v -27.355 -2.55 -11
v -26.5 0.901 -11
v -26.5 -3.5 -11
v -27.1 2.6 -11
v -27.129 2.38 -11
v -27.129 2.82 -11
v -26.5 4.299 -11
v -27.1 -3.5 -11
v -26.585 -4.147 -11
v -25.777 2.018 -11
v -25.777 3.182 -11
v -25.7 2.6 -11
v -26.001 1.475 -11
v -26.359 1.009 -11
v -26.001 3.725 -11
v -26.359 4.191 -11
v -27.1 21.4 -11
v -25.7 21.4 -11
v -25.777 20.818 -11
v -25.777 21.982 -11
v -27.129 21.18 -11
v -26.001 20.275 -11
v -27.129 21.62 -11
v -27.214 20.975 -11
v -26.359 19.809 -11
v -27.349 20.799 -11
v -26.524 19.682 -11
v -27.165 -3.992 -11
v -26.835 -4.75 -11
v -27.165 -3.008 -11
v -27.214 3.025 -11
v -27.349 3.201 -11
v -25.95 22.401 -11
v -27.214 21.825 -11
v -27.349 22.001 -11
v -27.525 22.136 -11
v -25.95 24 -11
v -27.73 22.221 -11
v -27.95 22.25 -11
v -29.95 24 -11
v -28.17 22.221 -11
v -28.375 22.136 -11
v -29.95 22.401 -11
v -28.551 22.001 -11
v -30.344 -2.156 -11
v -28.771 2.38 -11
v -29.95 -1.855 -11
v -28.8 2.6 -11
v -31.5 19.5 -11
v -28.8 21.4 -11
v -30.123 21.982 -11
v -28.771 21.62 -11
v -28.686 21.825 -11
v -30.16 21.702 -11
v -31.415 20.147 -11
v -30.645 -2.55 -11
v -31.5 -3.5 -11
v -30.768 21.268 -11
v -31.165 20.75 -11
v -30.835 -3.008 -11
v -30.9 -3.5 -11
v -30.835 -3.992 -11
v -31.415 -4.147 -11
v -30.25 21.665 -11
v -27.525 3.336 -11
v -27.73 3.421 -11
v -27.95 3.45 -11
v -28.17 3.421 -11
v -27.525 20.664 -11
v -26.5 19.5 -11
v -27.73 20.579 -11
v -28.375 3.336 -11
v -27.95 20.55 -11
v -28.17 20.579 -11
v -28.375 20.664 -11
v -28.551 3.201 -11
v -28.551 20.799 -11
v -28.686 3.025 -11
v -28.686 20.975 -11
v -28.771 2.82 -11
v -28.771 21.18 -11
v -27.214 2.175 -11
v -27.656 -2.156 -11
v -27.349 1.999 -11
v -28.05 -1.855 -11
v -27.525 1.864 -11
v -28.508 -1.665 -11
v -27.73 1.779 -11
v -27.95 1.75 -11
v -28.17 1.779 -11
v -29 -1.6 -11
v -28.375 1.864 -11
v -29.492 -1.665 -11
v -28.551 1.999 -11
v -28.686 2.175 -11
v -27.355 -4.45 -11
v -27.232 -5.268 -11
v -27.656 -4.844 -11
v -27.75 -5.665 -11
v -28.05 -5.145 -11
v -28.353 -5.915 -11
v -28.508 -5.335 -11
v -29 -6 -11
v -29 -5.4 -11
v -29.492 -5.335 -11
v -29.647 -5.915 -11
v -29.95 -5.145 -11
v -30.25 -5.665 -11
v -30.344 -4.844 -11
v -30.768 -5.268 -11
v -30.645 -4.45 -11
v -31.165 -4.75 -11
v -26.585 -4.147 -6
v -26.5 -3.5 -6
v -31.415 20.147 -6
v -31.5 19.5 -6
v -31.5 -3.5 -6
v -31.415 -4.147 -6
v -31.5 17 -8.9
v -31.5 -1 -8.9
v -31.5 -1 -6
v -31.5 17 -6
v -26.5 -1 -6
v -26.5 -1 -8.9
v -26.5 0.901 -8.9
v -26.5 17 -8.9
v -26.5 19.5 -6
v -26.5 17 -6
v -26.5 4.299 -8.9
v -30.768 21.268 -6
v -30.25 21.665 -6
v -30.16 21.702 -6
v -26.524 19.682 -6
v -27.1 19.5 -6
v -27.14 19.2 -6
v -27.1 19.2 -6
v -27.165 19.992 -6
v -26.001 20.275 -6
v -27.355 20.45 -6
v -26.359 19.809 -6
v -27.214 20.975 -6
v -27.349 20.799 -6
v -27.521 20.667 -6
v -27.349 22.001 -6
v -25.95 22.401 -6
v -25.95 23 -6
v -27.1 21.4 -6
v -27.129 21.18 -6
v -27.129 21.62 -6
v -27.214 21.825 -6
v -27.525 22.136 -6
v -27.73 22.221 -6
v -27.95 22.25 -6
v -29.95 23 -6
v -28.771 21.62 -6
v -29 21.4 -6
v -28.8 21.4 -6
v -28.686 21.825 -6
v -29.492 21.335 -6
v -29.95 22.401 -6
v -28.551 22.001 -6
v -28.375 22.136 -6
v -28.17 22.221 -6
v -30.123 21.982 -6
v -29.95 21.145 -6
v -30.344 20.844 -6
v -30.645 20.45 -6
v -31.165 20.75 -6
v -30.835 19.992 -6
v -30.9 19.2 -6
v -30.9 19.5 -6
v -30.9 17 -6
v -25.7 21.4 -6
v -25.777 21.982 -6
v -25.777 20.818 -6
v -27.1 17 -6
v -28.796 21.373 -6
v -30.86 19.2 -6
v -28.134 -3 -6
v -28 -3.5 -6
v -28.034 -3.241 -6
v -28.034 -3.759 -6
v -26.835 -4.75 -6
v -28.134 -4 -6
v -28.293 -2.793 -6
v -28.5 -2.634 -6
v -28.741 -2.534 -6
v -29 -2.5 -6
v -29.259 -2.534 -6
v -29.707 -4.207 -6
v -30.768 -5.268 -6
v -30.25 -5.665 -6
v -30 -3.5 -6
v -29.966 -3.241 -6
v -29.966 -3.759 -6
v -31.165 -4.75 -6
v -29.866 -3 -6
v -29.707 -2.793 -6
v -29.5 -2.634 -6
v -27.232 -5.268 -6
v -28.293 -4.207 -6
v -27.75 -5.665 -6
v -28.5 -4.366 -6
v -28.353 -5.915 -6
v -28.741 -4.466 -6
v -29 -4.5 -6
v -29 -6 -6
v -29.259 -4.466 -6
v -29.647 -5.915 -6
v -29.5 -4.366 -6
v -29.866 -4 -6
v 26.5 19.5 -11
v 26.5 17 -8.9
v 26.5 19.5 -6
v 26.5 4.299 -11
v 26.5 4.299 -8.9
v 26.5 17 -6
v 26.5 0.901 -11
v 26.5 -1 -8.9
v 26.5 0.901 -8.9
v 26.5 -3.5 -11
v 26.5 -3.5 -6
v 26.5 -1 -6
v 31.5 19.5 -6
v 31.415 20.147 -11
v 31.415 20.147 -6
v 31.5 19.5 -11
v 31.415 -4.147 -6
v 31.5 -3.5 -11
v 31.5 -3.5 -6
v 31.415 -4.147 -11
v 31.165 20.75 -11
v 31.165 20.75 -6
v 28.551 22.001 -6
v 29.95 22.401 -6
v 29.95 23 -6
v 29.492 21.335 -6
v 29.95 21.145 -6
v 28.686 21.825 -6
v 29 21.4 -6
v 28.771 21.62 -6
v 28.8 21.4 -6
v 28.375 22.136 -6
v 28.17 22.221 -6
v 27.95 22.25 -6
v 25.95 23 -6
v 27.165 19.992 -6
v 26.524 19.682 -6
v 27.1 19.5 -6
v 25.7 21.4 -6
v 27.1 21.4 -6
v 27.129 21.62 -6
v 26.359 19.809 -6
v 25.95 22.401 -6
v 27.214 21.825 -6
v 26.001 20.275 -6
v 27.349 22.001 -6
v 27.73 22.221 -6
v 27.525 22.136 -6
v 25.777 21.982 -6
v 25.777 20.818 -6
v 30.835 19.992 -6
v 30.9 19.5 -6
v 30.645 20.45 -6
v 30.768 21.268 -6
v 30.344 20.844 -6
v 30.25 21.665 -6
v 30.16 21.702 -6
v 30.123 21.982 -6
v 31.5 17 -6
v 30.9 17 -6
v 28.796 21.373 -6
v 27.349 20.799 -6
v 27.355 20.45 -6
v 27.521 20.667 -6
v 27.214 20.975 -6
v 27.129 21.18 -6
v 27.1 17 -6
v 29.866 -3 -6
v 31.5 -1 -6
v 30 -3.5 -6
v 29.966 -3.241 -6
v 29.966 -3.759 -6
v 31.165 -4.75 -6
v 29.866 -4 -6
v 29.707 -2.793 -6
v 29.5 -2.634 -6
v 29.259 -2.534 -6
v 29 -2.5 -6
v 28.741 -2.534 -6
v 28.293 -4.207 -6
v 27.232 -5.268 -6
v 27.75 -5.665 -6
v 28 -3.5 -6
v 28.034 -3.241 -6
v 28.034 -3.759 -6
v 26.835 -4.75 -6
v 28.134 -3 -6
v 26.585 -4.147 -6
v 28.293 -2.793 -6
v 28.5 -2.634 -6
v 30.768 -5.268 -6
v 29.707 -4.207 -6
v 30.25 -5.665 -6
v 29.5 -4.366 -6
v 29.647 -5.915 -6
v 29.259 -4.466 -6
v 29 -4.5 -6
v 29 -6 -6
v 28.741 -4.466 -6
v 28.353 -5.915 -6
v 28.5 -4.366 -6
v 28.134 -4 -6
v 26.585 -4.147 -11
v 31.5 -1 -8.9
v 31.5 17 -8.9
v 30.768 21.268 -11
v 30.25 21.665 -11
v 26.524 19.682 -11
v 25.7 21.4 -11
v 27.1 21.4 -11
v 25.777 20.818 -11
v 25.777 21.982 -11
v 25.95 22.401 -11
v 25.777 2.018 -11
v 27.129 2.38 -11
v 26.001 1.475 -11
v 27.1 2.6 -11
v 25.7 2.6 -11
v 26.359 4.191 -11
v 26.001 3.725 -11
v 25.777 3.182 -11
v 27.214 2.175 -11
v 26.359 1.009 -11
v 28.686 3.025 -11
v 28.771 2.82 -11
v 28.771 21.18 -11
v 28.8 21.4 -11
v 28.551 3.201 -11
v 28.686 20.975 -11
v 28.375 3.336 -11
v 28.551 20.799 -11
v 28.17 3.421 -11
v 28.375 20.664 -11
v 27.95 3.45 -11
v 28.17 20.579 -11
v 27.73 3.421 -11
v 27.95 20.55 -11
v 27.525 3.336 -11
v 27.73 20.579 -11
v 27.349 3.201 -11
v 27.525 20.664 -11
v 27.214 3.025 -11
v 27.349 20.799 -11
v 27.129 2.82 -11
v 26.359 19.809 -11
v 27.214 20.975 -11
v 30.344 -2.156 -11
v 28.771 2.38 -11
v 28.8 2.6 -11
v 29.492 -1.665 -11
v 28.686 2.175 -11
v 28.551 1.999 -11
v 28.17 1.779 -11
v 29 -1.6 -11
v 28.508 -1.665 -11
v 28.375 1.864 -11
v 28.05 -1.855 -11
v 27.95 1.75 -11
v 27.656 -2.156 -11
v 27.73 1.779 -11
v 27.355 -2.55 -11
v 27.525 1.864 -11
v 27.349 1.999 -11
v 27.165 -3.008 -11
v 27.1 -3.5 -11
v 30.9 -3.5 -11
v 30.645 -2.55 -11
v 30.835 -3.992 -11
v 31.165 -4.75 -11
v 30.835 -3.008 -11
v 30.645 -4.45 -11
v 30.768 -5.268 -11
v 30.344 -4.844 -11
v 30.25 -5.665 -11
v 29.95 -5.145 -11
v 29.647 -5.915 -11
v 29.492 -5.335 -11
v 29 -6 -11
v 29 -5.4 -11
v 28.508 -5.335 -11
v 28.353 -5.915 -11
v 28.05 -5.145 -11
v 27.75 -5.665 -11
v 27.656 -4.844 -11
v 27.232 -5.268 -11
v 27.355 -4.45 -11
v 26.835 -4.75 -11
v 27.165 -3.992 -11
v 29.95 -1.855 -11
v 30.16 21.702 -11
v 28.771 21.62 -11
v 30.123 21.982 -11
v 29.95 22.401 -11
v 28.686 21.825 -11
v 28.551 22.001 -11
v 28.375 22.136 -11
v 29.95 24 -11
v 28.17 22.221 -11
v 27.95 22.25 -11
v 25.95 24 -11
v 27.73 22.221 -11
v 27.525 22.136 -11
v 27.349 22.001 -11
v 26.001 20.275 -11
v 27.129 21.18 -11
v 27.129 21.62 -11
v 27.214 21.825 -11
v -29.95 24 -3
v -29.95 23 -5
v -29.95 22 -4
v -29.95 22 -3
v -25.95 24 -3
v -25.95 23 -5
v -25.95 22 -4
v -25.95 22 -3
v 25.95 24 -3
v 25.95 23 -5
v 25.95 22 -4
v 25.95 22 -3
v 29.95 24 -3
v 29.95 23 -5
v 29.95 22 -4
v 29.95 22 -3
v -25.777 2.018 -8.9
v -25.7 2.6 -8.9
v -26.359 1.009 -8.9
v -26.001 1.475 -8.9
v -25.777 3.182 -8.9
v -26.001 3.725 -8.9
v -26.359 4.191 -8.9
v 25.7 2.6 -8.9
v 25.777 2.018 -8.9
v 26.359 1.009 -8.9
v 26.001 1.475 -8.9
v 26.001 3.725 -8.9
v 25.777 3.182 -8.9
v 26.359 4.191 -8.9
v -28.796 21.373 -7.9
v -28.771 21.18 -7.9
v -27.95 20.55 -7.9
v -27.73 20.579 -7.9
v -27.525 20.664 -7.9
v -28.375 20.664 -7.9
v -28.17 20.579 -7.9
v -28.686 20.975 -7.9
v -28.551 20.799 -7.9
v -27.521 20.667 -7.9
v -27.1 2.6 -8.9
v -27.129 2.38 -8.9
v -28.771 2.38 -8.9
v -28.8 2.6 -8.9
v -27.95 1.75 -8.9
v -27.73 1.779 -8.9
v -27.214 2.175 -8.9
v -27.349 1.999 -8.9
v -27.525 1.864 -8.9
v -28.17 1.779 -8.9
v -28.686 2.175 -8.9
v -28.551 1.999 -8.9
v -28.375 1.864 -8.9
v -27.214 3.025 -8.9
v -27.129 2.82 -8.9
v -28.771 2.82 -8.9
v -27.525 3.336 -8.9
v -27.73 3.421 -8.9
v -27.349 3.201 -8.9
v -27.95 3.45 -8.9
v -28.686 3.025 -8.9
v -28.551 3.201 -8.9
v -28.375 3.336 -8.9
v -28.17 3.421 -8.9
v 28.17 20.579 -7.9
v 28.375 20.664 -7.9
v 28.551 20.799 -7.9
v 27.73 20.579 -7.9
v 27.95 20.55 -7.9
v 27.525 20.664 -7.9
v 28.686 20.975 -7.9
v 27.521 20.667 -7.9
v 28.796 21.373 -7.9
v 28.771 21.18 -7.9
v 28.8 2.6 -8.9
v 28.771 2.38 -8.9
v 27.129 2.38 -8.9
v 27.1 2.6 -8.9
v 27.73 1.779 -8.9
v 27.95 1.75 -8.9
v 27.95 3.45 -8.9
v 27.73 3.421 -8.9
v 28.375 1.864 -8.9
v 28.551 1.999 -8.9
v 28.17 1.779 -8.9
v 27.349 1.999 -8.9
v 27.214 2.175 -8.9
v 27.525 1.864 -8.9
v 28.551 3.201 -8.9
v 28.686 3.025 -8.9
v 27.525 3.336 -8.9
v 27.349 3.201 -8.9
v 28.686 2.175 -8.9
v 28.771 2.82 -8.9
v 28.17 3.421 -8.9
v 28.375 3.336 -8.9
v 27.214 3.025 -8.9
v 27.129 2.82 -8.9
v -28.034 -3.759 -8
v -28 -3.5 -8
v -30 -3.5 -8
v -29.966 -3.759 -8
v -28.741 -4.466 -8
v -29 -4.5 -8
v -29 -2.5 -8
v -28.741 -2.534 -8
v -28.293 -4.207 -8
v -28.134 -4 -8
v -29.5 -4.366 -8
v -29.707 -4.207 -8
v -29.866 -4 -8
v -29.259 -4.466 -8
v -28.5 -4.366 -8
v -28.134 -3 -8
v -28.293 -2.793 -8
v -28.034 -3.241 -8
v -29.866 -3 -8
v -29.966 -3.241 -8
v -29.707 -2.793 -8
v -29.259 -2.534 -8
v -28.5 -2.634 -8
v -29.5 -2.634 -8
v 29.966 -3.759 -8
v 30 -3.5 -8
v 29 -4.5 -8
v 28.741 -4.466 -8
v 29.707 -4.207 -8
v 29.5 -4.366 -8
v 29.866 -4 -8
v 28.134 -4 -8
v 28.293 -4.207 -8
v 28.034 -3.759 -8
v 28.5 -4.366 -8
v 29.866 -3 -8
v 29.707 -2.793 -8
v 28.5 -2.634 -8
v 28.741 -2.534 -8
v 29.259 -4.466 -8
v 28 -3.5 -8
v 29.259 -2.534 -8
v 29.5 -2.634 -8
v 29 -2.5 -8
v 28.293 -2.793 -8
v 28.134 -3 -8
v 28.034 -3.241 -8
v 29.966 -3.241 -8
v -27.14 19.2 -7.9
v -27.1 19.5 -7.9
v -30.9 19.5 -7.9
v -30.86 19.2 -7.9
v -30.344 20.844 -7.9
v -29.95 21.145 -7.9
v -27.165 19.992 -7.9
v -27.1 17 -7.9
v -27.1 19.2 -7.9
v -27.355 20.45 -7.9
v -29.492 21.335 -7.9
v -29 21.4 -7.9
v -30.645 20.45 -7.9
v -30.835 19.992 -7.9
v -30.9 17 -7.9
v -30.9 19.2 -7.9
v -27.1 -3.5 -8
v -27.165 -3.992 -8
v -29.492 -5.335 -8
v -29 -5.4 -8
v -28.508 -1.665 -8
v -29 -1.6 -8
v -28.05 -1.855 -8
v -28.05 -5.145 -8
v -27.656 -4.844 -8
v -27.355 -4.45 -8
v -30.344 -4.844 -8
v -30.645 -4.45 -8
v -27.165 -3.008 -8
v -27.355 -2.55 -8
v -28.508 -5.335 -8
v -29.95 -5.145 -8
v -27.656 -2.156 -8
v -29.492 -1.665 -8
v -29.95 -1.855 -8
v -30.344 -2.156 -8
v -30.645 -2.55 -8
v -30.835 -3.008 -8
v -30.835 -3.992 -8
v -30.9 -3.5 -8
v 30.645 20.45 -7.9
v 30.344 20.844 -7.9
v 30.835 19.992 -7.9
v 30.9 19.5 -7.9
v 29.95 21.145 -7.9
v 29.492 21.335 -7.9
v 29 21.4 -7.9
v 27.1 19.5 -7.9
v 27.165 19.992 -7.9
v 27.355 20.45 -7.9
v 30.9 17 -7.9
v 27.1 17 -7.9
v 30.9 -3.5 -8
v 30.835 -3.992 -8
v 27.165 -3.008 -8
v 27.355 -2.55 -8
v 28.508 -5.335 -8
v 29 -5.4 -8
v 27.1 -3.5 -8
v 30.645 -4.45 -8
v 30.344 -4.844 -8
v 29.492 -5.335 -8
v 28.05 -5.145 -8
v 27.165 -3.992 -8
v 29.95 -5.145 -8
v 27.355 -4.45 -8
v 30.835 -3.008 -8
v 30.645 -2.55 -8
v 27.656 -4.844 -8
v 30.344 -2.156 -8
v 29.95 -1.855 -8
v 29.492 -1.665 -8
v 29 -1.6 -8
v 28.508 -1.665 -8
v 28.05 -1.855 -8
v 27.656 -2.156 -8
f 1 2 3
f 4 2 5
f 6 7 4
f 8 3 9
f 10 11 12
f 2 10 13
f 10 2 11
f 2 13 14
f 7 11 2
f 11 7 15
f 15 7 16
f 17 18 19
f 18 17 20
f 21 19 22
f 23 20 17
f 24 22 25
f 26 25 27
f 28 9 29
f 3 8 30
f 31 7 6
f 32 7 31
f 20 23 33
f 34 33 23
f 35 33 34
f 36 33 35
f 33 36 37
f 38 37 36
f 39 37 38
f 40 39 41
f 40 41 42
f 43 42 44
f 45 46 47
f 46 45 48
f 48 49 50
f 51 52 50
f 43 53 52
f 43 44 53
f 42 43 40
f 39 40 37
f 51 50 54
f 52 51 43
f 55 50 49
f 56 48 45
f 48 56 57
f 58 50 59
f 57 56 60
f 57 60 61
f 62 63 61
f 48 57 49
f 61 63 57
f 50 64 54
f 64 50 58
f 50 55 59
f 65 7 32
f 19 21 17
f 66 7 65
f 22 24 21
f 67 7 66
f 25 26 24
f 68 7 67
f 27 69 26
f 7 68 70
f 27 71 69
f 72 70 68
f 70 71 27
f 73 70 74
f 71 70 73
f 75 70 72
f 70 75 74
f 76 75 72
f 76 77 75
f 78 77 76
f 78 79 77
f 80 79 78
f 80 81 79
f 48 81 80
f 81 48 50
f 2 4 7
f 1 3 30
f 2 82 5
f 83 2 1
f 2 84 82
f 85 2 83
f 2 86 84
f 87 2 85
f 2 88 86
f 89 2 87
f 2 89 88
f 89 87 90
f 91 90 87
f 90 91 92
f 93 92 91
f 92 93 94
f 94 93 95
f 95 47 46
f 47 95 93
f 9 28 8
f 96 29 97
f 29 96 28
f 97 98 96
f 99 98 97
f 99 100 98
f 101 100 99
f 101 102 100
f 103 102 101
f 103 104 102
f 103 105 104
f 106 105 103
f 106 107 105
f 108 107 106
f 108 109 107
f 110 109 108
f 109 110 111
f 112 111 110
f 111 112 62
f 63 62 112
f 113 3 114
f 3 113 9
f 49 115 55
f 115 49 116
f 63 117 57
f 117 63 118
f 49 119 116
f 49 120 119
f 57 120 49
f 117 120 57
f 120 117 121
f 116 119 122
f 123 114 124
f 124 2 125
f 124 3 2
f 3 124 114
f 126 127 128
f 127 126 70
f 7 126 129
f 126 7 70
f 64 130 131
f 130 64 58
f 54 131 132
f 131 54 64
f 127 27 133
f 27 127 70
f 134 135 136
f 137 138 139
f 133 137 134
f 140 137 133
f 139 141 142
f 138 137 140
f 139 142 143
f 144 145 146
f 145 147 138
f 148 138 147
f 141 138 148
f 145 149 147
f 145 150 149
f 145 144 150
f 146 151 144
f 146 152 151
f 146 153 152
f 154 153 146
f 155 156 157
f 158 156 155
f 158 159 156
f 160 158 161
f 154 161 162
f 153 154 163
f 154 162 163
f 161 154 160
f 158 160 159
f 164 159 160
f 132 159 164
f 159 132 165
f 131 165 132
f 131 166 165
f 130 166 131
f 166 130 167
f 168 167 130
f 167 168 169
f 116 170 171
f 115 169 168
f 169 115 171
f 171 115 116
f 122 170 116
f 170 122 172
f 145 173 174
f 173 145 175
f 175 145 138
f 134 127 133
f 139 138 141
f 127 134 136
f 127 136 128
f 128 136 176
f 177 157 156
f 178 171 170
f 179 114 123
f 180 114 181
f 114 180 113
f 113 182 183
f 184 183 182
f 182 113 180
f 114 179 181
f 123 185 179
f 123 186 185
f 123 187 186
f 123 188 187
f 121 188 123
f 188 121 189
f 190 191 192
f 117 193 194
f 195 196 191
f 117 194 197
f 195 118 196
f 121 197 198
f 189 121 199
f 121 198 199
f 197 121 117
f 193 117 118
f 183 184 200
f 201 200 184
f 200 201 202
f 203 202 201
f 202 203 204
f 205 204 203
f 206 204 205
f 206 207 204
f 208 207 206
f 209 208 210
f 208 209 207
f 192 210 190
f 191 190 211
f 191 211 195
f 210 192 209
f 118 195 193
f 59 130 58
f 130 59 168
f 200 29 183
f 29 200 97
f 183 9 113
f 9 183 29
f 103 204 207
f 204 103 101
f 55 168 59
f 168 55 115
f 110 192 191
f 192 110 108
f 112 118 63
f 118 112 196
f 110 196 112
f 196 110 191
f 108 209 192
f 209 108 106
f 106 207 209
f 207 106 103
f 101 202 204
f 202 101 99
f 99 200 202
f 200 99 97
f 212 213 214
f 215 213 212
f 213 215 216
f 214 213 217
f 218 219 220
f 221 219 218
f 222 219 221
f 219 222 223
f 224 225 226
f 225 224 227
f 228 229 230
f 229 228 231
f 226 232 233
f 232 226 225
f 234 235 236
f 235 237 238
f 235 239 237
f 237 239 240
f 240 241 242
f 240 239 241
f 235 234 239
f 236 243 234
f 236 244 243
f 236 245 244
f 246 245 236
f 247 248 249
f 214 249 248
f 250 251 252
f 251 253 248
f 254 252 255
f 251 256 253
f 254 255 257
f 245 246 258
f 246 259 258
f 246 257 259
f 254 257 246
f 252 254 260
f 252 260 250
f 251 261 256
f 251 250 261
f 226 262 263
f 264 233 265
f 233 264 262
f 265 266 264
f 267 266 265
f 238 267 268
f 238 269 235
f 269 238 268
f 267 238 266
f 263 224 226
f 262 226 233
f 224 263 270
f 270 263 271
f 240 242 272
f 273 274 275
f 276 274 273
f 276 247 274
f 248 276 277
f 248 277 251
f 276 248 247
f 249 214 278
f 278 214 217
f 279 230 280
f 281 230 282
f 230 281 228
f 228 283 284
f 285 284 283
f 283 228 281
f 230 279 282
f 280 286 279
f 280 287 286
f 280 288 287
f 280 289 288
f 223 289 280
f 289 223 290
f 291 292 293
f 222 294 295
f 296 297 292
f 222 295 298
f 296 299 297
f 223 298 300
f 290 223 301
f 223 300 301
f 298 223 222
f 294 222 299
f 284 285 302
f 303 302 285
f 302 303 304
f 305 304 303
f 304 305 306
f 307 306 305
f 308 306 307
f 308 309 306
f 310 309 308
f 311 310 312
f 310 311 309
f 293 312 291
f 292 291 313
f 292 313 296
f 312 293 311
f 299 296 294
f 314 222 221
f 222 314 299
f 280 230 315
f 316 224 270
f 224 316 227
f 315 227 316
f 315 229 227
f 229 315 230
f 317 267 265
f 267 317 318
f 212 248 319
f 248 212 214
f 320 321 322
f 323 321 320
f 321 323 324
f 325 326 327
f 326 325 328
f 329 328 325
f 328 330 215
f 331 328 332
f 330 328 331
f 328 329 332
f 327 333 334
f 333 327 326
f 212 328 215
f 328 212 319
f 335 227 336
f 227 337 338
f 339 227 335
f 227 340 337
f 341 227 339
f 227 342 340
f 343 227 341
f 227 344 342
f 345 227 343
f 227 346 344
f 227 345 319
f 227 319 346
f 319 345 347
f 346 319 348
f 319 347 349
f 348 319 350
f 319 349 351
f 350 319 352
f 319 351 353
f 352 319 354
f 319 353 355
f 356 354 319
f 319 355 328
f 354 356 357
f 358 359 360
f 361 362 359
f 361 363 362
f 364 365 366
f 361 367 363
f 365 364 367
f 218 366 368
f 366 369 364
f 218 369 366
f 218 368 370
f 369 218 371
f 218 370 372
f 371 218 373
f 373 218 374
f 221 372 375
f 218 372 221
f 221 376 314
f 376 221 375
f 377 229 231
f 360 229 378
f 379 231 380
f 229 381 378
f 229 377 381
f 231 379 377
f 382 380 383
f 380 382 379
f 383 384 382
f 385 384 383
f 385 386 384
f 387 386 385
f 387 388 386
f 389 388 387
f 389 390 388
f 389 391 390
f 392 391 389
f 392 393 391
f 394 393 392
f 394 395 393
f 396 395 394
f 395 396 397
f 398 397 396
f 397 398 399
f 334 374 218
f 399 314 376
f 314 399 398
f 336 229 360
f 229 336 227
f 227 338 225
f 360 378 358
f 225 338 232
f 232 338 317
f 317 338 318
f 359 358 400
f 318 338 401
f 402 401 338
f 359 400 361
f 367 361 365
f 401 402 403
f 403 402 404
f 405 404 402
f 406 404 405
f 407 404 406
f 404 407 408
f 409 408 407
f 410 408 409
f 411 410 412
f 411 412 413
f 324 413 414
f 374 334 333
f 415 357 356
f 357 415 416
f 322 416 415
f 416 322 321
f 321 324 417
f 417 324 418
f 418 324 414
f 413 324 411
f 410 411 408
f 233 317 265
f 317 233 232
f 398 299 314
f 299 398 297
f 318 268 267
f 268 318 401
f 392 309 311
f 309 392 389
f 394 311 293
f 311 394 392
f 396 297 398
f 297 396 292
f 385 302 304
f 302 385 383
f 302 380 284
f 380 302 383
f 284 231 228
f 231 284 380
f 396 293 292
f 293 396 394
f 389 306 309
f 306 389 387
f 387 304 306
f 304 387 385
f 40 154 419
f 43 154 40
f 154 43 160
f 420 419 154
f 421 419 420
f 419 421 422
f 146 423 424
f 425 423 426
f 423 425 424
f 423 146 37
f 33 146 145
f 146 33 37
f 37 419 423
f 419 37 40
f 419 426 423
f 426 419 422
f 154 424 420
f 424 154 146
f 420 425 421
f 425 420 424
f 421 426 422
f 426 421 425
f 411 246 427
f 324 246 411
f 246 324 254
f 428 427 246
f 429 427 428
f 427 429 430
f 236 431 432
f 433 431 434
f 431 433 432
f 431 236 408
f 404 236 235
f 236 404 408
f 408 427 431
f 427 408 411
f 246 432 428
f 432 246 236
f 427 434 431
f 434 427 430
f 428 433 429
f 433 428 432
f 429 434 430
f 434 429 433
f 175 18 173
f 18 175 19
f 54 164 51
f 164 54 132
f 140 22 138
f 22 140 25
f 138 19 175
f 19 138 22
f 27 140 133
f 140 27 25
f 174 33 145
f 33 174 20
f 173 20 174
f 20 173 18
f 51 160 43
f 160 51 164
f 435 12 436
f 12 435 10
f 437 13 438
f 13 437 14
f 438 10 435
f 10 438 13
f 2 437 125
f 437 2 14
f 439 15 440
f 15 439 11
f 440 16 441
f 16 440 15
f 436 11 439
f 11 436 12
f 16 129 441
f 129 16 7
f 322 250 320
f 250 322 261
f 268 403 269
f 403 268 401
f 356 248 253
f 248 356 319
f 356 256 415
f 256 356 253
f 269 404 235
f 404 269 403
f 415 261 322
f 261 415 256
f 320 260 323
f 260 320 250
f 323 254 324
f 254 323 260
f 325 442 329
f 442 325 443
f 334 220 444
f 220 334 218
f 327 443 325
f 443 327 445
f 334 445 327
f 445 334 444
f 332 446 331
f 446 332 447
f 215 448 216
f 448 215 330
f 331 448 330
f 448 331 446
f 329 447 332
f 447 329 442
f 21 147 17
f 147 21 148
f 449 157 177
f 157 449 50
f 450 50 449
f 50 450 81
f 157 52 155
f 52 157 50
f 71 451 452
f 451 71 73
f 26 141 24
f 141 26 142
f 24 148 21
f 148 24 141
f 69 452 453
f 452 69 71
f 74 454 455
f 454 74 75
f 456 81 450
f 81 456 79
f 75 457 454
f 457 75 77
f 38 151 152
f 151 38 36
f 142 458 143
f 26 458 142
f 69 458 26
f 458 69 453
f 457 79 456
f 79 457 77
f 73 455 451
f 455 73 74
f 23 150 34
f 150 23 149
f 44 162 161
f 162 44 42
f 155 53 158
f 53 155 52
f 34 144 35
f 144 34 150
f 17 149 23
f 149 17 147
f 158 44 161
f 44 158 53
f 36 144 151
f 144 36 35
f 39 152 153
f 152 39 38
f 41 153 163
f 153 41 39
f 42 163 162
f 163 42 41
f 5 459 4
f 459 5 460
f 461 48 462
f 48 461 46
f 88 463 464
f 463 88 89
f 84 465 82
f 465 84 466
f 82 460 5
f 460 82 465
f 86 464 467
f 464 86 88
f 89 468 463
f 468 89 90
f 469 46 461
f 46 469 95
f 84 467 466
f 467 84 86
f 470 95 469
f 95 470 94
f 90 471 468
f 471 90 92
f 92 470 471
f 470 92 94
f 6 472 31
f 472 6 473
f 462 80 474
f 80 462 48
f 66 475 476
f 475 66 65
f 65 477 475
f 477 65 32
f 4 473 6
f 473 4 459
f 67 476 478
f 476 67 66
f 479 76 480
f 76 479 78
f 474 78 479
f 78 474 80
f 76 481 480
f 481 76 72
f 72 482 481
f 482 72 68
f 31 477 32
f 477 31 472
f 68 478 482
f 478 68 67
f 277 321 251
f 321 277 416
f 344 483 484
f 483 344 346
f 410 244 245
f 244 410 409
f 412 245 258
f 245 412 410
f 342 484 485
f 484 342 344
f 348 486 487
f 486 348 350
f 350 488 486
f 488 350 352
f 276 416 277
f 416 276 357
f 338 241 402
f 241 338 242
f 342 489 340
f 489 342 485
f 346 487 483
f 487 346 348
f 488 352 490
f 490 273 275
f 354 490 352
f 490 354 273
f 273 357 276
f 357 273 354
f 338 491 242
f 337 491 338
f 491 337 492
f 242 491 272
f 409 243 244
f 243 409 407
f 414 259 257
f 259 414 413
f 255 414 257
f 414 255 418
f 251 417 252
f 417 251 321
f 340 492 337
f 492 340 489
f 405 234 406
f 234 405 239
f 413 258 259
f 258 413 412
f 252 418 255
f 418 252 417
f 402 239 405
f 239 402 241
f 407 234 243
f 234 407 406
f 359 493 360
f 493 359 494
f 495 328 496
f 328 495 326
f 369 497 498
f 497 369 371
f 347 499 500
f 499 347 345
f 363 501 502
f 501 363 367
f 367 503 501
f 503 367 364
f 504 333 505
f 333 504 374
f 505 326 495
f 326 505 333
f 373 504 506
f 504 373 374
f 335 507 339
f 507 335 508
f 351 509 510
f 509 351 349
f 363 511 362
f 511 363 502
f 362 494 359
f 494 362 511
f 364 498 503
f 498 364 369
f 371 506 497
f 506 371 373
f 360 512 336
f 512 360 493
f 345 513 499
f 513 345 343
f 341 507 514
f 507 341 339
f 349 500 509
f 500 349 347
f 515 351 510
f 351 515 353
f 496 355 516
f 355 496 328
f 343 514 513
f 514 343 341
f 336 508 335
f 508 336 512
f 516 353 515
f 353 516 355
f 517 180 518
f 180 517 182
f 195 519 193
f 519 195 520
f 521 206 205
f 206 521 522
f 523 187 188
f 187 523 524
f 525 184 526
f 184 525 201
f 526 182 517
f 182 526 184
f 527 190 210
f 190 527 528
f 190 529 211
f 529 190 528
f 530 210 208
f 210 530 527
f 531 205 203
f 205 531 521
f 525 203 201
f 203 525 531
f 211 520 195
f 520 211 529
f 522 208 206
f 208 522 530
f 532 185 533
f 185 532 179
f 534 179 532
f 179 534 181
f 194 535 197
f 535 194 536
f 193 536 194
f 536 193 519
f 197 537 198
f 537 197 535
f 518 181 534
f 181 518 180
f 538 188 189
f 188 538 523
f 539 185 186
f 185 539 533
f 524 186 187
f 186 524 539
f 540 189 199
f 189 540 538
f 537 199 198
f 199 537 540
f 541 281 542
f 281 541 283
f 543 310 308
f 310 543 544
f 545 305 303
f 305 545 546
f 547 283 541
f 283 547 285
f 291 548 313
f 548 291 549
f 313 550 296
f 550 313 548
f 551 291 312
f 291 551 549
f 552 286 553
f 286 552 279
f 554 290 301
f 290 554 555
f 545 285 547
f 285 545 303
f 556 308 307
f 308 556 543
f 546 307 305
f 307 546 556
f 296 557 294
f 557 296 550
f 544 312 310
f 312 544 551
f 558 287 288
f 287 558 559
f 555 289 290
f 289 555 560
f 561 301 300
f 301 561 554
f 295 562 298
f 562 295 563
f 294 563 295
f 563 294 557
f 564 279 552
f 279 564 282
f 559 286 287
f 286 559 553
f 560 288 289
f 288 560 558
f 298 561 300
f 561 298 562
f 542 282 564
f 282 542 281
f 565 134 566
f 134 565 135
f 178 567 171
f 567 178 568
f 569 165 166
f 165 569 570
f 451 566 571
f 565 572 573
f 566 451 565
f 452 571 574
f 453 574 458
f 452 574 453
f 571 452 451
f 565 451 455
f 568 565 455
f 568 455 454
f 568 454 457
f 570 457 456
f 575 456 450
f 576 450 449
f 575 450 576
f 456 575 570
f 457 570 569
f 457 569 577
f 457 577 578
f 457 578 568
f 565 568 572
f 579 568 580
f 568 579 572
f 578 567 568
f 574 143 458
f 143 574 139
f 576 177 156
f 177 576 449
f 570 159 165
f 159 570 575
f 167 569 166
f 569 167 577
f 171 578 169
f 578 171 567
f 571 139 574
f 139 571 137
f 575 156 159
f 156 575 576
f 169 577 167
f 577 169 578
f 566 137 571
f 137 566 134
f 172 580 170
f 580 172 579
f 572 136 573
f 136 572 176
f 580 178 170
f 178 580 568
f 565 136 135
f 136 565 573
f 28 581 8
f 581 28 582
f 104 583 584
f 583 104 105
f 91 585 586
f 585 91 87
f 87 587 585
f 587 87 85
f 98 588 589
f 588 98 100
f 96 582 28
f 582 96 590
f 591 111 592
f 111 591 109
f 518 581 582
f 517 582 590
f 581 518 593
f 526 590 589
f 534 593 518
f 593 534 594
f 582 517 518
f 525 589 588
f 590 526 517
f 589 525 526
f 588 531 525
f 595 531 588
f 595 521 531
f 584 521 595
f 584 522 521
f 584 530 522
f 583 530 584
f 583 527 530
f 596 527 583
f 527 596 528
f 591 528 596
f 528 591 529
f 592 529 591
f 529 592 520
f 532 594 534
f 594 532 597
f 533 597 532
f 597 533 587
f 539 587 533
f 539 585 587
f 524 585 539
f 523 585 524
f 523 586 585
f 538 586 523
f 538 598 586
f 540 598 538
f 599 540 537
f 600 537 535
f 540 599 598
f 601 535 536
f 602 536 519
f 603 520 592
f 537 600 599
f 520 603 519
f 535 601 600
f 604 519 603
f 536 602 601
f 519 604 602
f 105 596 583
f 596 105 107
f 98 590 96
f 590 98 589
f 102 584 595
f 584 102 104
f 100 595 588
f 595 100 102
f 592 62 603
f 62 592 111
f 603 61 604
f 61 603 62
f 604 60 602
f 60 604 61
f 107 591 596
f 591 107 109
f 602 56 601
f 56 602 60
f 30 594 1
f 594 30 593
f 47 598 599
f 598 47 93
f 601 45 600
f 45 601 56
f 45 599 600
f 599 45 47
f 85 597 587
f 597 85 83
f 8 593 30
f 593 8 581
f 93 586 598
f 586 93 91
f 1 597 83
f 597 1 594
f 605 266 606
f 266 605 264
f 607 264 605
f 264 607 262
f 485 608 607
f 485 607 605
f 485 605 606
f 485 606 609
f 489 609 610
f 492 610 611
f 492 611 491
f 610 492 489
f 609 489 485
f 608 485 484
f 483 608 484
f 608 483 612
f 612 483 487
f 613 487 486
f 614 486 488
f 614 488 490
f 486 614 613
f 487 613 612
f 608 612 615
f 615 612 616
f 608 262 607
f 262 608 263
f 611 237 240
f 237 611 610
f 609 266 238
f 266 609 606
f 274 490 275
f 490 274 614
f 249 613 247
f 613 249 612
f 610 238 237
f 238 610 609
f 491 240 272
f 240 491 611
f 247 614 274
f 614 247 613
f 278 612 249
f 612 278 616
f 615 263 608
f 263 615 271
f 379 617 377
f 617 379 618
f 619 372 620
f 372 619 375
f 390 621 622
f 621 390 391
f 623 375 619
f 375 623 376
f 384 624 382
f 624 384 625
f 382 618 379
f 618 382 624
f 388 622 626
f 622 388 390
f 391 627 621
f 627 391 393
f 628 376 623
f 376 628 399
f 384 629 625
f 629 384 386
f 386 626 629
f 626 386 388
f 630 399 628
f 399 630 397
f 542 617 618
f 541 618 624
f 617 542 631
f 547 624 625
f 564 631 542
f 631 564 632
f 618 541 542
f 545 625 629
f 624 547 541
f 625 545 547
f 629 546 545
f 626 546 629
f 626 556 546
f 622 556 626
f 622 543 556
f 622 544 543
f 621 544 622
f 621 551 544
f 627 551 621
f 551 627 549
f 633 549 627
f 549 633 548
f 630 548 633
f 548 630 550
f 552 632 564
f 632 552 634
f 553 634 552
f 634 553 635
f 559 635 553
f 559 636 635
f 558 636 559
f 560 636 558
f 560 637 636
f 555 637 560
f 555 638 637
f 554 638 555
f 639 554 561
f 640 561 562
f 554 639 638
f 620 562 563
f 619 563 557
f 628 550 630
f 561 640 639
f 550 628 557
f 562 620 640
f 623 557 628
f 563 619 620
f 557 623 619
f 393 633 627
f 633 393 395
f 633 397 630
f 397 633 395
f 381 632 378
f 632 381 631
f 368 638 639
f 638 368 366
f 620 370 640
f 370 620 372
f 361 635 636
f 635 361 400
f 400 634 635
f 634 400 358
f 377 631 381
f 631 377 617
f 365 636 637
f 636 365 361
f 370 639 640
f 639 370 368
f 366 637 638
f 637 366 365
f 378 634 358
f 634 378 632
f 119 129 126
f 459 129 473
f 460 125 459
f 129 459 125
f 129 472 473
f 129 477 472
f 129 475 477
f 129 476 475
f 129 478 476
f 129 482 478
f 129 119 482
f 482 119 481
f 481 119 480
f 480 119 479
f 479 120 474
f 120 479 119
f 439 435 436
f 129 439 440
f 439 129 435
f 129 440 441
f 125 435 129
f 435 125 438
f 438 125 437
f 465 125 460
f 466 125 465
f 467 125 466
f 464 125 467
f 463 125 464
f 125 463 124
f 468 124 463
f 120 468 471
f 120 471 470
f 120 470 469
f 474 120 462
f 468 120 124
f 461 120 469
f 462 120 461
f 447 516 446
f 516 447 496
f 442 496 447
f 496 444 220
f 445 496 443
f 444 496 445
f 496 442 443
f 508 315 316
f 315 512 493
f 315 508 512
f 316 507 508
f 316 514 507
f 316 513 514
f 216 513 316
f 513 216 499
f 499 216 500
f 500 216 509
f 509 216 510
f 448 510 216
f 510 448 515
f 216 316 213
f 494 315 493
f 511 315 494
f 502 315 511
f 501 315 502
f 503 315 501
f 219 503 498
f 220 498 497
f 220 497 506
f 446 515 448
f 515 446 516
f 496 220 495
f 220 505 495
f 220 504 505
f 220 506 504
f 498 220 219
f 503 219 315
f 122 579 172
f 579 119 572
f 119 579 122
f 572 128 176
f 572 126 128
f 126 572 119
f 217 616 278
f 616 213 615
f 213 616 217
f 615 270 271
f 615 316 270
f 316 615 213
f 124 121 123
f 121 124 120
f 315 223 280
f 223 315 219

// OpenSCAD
// file: config.scad
//Parameters for servo_lx16a
$fn = 24;
//x,y,z => l,w,h


servo_l         = 45.20; 
servo_w         = 24.70; 
body_h          = 32;

servo_h         = 35;

hub_offset      = 10.10;

rad = 2;


w_between_holes = 20.5;
l_between_top_holes = 20.7;
l_between_bottom_holes = 24.45;
top_hole_l_offset = 6.1;
bottom_hole_l_offset = 2.35;

hole_dia = 1.6;
attach_screw_l = 5;

top_hub_carve_h = 2.6;
bottom_hub_carve_h = 3.4;

top_attach_carve_h = 1.1;
bottom_attach_carve_h = 1.9;

hub_carve_r = 10.8;

hub_r = 10.1;

w_between_ridges = 19.5;

top_horn_h = 3.20;
bottom_horn_h = 3.85;

top_horn_r = 3.15;
bottom_horn_r = 3;



hub_h           = 4;
small_hub_r     = 6.15/2;  
horn_r          = 4.66/2;
horn_h          = 3;

wire_l          = 4;
wire_w          = 1.5;
wire_h          = 1;
wire_place      = 4.8;
// file: electronics.scad
$fn=100;

//on_off_switch();

//pi_zero();

//translate ([0,100,0])
//pca9685();

//dc_dc();

//pi_camera();



module header(pins, rows){
  color("darkgrey") cube([2.54*pins,2.54*rows,1.27]);
  
  color("gold")
  for(x=[0:pins-1],y=[0:rows-1])
    translate([x*2.54+(1.27+.6)/2,y*2.54+(1.27+.6)/2,-3.5]) cube([0.6,0.6,11.5]);
}


module pi_zero(){
    // PCB
    color("limegreen") difference(){
        hull(){
            translate([-(65-6)/2,-(30-6)/2,0]) cylinder(r=3, h=1.4 );
            translate([-(65-6)/2, (30-6)/2,0]) cylinder(r=3, h=1.4 );
            translate([ (65-6)/2,-(30-6)/2,0]) cylinder(r=3, h=1.4 );
            translate([ (65-6)/2, (30-6)/2,0]) cylinder(r=3, h=1.4 );
        }
        
        translate([-65/2+3.5,-30/2+3.5,-1]) cylinder(d=2.75, h=3);
        translate([-65/2+3.5, 30/2-3.5,-1]) cylinder(d=2.75, h=3);
        translate([65/2-3.5,-30/2+3.5,-1]) cylinder(d=2.75, h=3);
        translate([65/2-3.5, 30/2-3.5,-1]) cylinder(d=2.75, h=3);
    }
    
    // Header
    translate([-10*2.54,30/2-2.54-3.5,1.4])
    header(20,2);
    
    translate([-65/2,-30/2,1.4]){
        color("silver"){
        
            // micro USB
            translate([41-8/2,-1.5,0]) cube([8,6,2.6]);
            translate([54-8/2,-1.5,0]) cube([8,6,2.6]);        
            
            // HDMI
            translate([6.9,-1.5,0]) cube([13,7,3]);
        }
    
        color("darkgrey"){
        
            // Camera
            translate([64-4/2,7.1,0]) cube([4,16,2.5]);
        }
    
        // Micro SD Card
        color("silver") translate([0,8.6,-0]) cube([13,14,1.5]);    
        color("darkgrey") translate([-2.4,10.1,0]) cube([2.4,11,1]);
    }
}



module pca9685(withHeader=true){  
  
    // PCB
    color("limegreen") difference(){
        translate([0,0,0]) hull(){
            translate([-(62.5-6)/2,-(25.4-6)/2,0]) cylinder(r=3, h=1.4 );
            translate([-(62.5-6)/2, (25.4-6)/2,0]) cylinder(r=3, h=1.4 );
            translate([ (62.5-6)/2,-(25.4-6)/2,0]) cylinder(r=3, h=1.4 );
            translate([ (62.5-6)/2, (25.4-6)/2,0]) cylinder(r=3, h=1.4 );
        }
        
        translate([-55.9/2,-18.8/2,-1]) cylinder(d=2.75, h=3);
        translate([-55.9/2, 18.8/2,-1]) cylinder(d=2.75, h=3);
        translate([55.9/2,-18.8/2,-1]) cylinder(d=2.75, h=3);
        translate([55.9/2, 18.8/2,-1]) cylinder(d=2.75, h=3);
    } 
    
    
    // capacitor
    color("silver")
    translate([-(62.5/2)+17.1,(25.4-8.3)/2,1.4])
    cylinder(d=8.3, h=12.7);
    
    //power connector
    color("blue")
    translate([-(62.5/2)+25.1+2.54*2,(25.4-8.3)/2,1.4])
    cube([2.54*2,4,8]);
    
    // Header top
    translate([-(62.5/2)+5.65,-25.4/2,1.4])
    header(4,3);
    
    translate([2.25,-25.4/2,1.4])
    header(4,3);
    
    translate([-2.25-2.54*4,-25.4/2,1.4])
    header(4,3);
    
    translate([62.5/2-5.65-2.54*4,-25.4/2,1.4])
    header(4,3);
    
    translate([62.5/2,-25.4/2+5.08,1.4])
    rotate([0,0,90])
    header(6,1);
    
    translate([-62.5/2+2.54,-25.4/2+5.08,1.4])
    rotate([0,0,90])
    header(6,1);

  
}

module dc_dc(){
    
    // PCB
    color("limegreen") difference(){
        translate([0,0,0]) hull(){
            translate([-(24.5-6)/2,-(48-6)/2,0]) cylinder(r=3, h=1.4 );
            translate([-(24.5-6)/2, (48-6)/2,0]) cylinder(r=3, h=1.4 );
            translate([ (24.5-6)/2,-(48-6)/2,0]) cylinder(r=3, h=1.4 );
            translate([ (24.5-6)/2, (48-6)/2,0]) cylinder(r=3, h=1.4 );
        }
      
        translate([0,0,-1]) {
            
            //translate([-17/2,-35/2,0])
            //cylinder(d=3.15, h=2.5);
            
            translate([-17/2,35/2, 0])
            cylinder(d=3.15, h=2.5);
            
            translate([17/2,-35/2, 0])
            cylinder(d=3.15, h=2.5);
            
            //translate([17/2,35/2, 0])
            //cylinder(d=3.15, h=2.5); 
          
        }


    } 
    
    
    // capacitors
    color("darkblue")
    translate([-(24.5/2)+12.1,(48-8)/2,1.4])
    cylinder(d=8, h=10);
    
    color("darkblue")
    translate([-(24.5/2)+12.1,-(48-8)/2,1.4])
    cylinder(d=8, h=10);
    
    //toroid
    
    difference(){
        
        color("orange")
        translate([(24.5/2)-22.1+9,(48-30)/2,1.4])
        cylinder(d=12, h=7.6);
        
        color("orange")
        translate([(24.5/2)-22.1+9,(48-30)/2,0.5])
        cylinder(d=6, h=11);

        
    }
    
    
    //potentiometer
    color("blue")
    translate([24.5/2-2,-48/2+9,1.4])
    rotate([0,0,90])
    cube([5,10,11]);
    
    
    //IC
    color("black")
    translate([24.5/2-8,-48/2+15,1.4])
    rotate([0,0,90])
    cube([11,11,5]);
    
    
}


module on_off_switch(){
    
    union(){
        
        color("silver")
        translate([-8/2, -4/2, 0])
        cube([8, 4, 3.8]);
        
        color("black")
        translate([-1.5/2, -1.5/2, 3.8])
        cube([1.5, 1.5, 3]);
        
        color("silver")
        translate([-0.5/2, -0.5/2, -3.2])
        cube([0.5, 0.5, 3.2]);
        
        color("silver")
        translate([-0.5/2-2.5, -0.5/2, -3.2])
        cube([0.5, 0.5, 3.2]);
        
        color("silver")
        translate([-0.5/2+2.5, -0.5/2, -3.2])
        cube([0.5, 0.5, 3.2]);
        
        
        
        
    }
    
}


module pi_camera(){
    difference(){
        union(){
            color("limegreen")
            translate([-25.5/2, -24.5/2, 0])
            cube([25.5, 24.5, 0.9]);
            
            
            //camera sensor
            color("darkgrey")
            translate([-8.5/2, -8.5/2+2.4, 0.9])
            cube([8.5, 8.5, 3.5]);
            
            color("darkgrey")
            translate([0, 2.4, 0.9+3.5])
            cylinder(d=8, h=0.75, $fn=32);
        
            color("darkgrey")
            translate([0, 2.4, 0.9+3.5+0.75])
            cylinder(d=6, h=0.75, $fn=32);
            
            color("darkgrey")
            translate([0, 2.4, 0.9+3.5+0.75+0.75])
            cylinder(d1=2, d2=5, h=2, $fn=32);
            
            //sensor connector
            color("orange")
            translate([-8.5/2, -8.5/2+2.4-10.5, 0.9])
            cube([8.5, 10.5, 2.5]);
            
            //led
            color("white")
            translate([-20/2, -8.5/2+2.4-7, 0.9])
            cube([20, 3, 1]);            
            
            
            //connector
            color("white")
            translate([-20.8/2, -5.5+24/2, -2.4])
            cube([20.8, 5.5, 2.4]);
            
            
    
        }
          
        translate([-21/2,-20/2,-1]) cylinder(d=2.1, h=3);
        translate([-21/2, 20/2-7.5,-1]) cylinder(d=2.1, h=3);
        translate([21/2,-20/2,-1]) cylinder(d=2.1, h=3);
        translate([21/2, 20/2-7.5,-1]) cylinder(d=2.1, h=3);
    }
    
    
}
// file: servo_5g.scad
include <Config.scad>

servo_5g();


$fn = 24;
//x,y,z => l,w,h


module servo_5g() {
  
    translate([-servo5_l/2, -servo5_w/2, -body5_h/2-hub5_h/2-horn5_h/2]) {
    
        color("white") 
        translate([servo5_l/2,servo5_l/2,body5_h+hub5_h])
        cylinder(r=horn5_r,h=horn5_h);
        
        color("deepSkyBlue",.7) //deepSkyBlue
        union() {
            cube([servo5_l,servo5_w,body5_h]);
            translate([servo5_l/2,servo5_l/2,body5_h])
            cylinder(r=servo5_l/2,h=hub5_h);
            translate([servo5_l/2,servo5_l/2+3.7,body5_h])
            cylinder(r=small_hub5_r,h=hub5_h);
            
        }
    }
}
// file: servo_12g.scad
include <config.scad>


servo_12g();


$fn = 24;
//x,y,z => l,w,h


module servo_12g() {
  
    translate([-servo_l/2, -servo_w/2, -body_h/2-hub_h/2-horn_h/2]) {
    
        color("white") 
        translate([servo_l/2,servo_l/2,body_h+hub_h])
        cylinder(r=horn_r,h=horn_h);
        
        color("deepSkyBlue",.7) //deepSkyBlue
        union() {
            cube([servo_l,servo_w,body_h]);
            translate([servo_l/2,servo_l/2,body_h])
            cylinder(r=servo_l/2,h=hub_h);
            translate([servo_l/2,servo_l/2+6.30,body_h])
            cylinder(r=small_hub_r,h=hub_h);
            
        }
    }
}

module roundedRect(size, radius)
{
x = size[0];
y = size[1];
z = size[2];

translate([x/2+radius/2, y/2+radius/2, 0]){
linear_extrude(height=z)
hull()
{
// place 4 circles in the corners, with the given radius
translate([(-x/2)+(radius/2), (-y/2)+(radius/2), 0])
circle(r=radius);

translate([(x/2)-(radius/2), (-y/2)+(radius/2), 0])
circle(r=radius);

translate([(-x/2)+(radius/2), (y/2)-(radius/2), 0])
circle(r=radius);

translate([(x/2)-(radius/2), (y/2)-(radius/2), 0])
circle(r=radius);
}
}
}
// file: Config.scad
//Parameters for 12g servo
$fn = 24;
//x,y,z => l,w,h

tap_r = 0.85;
hole_r = 1.0;

servo_l         = 12;  // was 12
servo_w         = 24;  // was 23
body_h          = 20.80;

servo_h         = 27; //not used in code was 27

wing_w          = 4.5;
wing_h          = 2.33;
wing_place      = 16.3;   
hole_offset     = 2.2;    //not checked
mount_hole_r    = 2/2;
mount_slot      = 1;

servo_ww        = servo_w+wing_w*2; // not used in code but is handy number

hub_h           = 4;
small_hub_r     = 6.15/2;  
horn_r          = 4.66/2;
horn_h          = 3;

wire_l          = 4;
wire_w          = 1.5;
wire_h          = 1;
wire_place      = 4.8;

servo_full_w    = servo_w+wing_w*2;

rad = 2;




//Parameters for 5g servo

servo5_l         = 8.6; 
servo5_w         = 18.6; 
body5_h          = 14.65;


hub5_h = 2.15;
small_hub5_r = 4.6/2;  
horn5_r = 4.66/2;
horn5_h = 3;

servo5_h         = body5_h+hub5_h+horn5_h;

mount_x = servo5_l + 2;
mount_y = servo5_w + 2;
mount_round = 1;
servo_tol = 0.2;
servo5_x     = servo5_l + servo_tol*2; //~12
servo5_y     = servo5_w + servo_tol*8; //~23
// main file
include <Config.scad>
use <servo_12g.scad>
use <servo_5g.scad>
use <electronics.scad>


rotate([180, 0, 0])
Citro6_26();


module Citro6_26(){
    
    difference(){
        
        union(){
        
            translate([0,-8,6]) {
                    
                hull(){
                    translate([-65/2+3.5,-30/2+3.5,0])
                    cylinder(d=5, h=5);
                    
                    translate([-65/2+3.5, 30/2-3.5,0])
                    cylinder(d=5, h=5);
                   
                }
            
                hull(){
            
                    translate([65/2-3.5,-30/2+3.5,0])
                    cylinder(d=5, h=5);
                    
                    translate([65/2-3.5, 30/2-3.5,0])
                    cylinder(d=5, h=5);  
                }  
                
                //hooks
                translate([-55.9/2,-30/2+3.5-3,2.5])
                cube([4, 3, 5], center=true);
                //cylinder(d=5, h=5);
                
                translate([-55.9/2,-30/2+3.5-4,1])
                cube([4, 1, 8], center=true);
                
                hull(){
                
                    translate([-55.9/2,-30/2+3.5-4,-2])
                    cube([4, 1, 2], center=true);
                    
                    translate([-55.9/2,-30/2+3.5-3.5,-2.5])
                    cube([4, 2, 1], center=true);
                    
                    
                }   
                
                
                translate([55.9/2,-30/2+3.5-3,2.5])
                cube([4, 3, 5], center=true);
                //cylinder(d=5, h=5);
                
                translate([55.9/2,-30/2+3.5-4,1])
                cube([4, 1, 8], center=true);
                
                hull(){
                
                    translate([55.9/2,-30/2+3.5-4,-2])
                    cube([4, 1, 2], center=true);
                    
                    translate([55.9/2,-30/2+3.5-3.5,-2.5])
                    cube([4, 2, 1], center=true);
                    
                    
                }
                    
            }
            
            //mouting posts for PCA9685 card
            translate([0,-12,6]) {
                        
                    translate([-55.9/2,-18.8/2,0])
                    cylinder(d=4.5, h=5);
                    
                    translate([-55.9/2, 18.8/2,0])
                    cylinder(d=4.5, h=5);
                    
                    translate([55.9/2,-18.8/2,0])
                    cylinder(d=4.5, h=5);
                    
                    translate([55.9/2, 18.8/2,0])
                    cylinder(d=4.5, h=5);
                
                    
            }
                    
        }   
        
        //screw holes for PCA9685 card
        translate([0,-12,6]) {
                        
            translate([-55.9/2,-18.8/2,-1])
            cylinder(r=tap_r, h=8);
            
            translate([-55.9/2, 18.8/2,-1])
            cylinder(r=tap_r, h=8);
            
            translate([55.9/2,-18.8/2,-1])
            cylinder(r=tap_r, h=8);
            
            translate([55.9/2, 18.8/2,-1])
            cylinder(r=tap_r, h=8);
        
        }
        
        //screw holes for pi_zero
        translate([0,-8,5]) {
            
            //translate([-58/2,-23/2,0])
            //cylinder(r=hole_r, h=15);
            
            translate([-58/2, 23/2,0])
            cylinder(r=hole_r, h=15);
            
            //translate([58/2,-23/2,0])
            //cylinder(r=hole_r, h=15);
            
            translate([58/2, 23/2,0])
            cylinder(r=hole_r, h=15);
            
        }
        
        translate([0,-8,8]) {
            
            translate([-58/2,-23/2,-2.1])
            cylinder(r=1.9, h=2);
            
            translate([-58/2,-23/2+1.9,-2.1+1])
            cube([3.8, 3.2, 2], center=true);
            
            translate([-58/2, 23/2,0])
            cylinder(r=1.9, h=15);
            
            translate([58/2,-23/2,-2.1])
            cylinder(r=1.9, h=2);
            
            translate([58/2,-23/2+1.9,-2.1+1])
            cube([3.8, 3.8, 2], center=true);   
            
            translate([58/2, 23/2,0])
            cylinder(r=1.9, h=15);
            
        }
        
        translate([-70/2,-18/2-8,5.9])
        cube([70,18, 3]);
        
    }
    
            //translate([0,-12,11])
            //rotate([0,0,180])
            //pca9685();
    
            //translate([0,-8,5])
            //rotate([0,0,0])
            //pi_zero();  
           

    
}
